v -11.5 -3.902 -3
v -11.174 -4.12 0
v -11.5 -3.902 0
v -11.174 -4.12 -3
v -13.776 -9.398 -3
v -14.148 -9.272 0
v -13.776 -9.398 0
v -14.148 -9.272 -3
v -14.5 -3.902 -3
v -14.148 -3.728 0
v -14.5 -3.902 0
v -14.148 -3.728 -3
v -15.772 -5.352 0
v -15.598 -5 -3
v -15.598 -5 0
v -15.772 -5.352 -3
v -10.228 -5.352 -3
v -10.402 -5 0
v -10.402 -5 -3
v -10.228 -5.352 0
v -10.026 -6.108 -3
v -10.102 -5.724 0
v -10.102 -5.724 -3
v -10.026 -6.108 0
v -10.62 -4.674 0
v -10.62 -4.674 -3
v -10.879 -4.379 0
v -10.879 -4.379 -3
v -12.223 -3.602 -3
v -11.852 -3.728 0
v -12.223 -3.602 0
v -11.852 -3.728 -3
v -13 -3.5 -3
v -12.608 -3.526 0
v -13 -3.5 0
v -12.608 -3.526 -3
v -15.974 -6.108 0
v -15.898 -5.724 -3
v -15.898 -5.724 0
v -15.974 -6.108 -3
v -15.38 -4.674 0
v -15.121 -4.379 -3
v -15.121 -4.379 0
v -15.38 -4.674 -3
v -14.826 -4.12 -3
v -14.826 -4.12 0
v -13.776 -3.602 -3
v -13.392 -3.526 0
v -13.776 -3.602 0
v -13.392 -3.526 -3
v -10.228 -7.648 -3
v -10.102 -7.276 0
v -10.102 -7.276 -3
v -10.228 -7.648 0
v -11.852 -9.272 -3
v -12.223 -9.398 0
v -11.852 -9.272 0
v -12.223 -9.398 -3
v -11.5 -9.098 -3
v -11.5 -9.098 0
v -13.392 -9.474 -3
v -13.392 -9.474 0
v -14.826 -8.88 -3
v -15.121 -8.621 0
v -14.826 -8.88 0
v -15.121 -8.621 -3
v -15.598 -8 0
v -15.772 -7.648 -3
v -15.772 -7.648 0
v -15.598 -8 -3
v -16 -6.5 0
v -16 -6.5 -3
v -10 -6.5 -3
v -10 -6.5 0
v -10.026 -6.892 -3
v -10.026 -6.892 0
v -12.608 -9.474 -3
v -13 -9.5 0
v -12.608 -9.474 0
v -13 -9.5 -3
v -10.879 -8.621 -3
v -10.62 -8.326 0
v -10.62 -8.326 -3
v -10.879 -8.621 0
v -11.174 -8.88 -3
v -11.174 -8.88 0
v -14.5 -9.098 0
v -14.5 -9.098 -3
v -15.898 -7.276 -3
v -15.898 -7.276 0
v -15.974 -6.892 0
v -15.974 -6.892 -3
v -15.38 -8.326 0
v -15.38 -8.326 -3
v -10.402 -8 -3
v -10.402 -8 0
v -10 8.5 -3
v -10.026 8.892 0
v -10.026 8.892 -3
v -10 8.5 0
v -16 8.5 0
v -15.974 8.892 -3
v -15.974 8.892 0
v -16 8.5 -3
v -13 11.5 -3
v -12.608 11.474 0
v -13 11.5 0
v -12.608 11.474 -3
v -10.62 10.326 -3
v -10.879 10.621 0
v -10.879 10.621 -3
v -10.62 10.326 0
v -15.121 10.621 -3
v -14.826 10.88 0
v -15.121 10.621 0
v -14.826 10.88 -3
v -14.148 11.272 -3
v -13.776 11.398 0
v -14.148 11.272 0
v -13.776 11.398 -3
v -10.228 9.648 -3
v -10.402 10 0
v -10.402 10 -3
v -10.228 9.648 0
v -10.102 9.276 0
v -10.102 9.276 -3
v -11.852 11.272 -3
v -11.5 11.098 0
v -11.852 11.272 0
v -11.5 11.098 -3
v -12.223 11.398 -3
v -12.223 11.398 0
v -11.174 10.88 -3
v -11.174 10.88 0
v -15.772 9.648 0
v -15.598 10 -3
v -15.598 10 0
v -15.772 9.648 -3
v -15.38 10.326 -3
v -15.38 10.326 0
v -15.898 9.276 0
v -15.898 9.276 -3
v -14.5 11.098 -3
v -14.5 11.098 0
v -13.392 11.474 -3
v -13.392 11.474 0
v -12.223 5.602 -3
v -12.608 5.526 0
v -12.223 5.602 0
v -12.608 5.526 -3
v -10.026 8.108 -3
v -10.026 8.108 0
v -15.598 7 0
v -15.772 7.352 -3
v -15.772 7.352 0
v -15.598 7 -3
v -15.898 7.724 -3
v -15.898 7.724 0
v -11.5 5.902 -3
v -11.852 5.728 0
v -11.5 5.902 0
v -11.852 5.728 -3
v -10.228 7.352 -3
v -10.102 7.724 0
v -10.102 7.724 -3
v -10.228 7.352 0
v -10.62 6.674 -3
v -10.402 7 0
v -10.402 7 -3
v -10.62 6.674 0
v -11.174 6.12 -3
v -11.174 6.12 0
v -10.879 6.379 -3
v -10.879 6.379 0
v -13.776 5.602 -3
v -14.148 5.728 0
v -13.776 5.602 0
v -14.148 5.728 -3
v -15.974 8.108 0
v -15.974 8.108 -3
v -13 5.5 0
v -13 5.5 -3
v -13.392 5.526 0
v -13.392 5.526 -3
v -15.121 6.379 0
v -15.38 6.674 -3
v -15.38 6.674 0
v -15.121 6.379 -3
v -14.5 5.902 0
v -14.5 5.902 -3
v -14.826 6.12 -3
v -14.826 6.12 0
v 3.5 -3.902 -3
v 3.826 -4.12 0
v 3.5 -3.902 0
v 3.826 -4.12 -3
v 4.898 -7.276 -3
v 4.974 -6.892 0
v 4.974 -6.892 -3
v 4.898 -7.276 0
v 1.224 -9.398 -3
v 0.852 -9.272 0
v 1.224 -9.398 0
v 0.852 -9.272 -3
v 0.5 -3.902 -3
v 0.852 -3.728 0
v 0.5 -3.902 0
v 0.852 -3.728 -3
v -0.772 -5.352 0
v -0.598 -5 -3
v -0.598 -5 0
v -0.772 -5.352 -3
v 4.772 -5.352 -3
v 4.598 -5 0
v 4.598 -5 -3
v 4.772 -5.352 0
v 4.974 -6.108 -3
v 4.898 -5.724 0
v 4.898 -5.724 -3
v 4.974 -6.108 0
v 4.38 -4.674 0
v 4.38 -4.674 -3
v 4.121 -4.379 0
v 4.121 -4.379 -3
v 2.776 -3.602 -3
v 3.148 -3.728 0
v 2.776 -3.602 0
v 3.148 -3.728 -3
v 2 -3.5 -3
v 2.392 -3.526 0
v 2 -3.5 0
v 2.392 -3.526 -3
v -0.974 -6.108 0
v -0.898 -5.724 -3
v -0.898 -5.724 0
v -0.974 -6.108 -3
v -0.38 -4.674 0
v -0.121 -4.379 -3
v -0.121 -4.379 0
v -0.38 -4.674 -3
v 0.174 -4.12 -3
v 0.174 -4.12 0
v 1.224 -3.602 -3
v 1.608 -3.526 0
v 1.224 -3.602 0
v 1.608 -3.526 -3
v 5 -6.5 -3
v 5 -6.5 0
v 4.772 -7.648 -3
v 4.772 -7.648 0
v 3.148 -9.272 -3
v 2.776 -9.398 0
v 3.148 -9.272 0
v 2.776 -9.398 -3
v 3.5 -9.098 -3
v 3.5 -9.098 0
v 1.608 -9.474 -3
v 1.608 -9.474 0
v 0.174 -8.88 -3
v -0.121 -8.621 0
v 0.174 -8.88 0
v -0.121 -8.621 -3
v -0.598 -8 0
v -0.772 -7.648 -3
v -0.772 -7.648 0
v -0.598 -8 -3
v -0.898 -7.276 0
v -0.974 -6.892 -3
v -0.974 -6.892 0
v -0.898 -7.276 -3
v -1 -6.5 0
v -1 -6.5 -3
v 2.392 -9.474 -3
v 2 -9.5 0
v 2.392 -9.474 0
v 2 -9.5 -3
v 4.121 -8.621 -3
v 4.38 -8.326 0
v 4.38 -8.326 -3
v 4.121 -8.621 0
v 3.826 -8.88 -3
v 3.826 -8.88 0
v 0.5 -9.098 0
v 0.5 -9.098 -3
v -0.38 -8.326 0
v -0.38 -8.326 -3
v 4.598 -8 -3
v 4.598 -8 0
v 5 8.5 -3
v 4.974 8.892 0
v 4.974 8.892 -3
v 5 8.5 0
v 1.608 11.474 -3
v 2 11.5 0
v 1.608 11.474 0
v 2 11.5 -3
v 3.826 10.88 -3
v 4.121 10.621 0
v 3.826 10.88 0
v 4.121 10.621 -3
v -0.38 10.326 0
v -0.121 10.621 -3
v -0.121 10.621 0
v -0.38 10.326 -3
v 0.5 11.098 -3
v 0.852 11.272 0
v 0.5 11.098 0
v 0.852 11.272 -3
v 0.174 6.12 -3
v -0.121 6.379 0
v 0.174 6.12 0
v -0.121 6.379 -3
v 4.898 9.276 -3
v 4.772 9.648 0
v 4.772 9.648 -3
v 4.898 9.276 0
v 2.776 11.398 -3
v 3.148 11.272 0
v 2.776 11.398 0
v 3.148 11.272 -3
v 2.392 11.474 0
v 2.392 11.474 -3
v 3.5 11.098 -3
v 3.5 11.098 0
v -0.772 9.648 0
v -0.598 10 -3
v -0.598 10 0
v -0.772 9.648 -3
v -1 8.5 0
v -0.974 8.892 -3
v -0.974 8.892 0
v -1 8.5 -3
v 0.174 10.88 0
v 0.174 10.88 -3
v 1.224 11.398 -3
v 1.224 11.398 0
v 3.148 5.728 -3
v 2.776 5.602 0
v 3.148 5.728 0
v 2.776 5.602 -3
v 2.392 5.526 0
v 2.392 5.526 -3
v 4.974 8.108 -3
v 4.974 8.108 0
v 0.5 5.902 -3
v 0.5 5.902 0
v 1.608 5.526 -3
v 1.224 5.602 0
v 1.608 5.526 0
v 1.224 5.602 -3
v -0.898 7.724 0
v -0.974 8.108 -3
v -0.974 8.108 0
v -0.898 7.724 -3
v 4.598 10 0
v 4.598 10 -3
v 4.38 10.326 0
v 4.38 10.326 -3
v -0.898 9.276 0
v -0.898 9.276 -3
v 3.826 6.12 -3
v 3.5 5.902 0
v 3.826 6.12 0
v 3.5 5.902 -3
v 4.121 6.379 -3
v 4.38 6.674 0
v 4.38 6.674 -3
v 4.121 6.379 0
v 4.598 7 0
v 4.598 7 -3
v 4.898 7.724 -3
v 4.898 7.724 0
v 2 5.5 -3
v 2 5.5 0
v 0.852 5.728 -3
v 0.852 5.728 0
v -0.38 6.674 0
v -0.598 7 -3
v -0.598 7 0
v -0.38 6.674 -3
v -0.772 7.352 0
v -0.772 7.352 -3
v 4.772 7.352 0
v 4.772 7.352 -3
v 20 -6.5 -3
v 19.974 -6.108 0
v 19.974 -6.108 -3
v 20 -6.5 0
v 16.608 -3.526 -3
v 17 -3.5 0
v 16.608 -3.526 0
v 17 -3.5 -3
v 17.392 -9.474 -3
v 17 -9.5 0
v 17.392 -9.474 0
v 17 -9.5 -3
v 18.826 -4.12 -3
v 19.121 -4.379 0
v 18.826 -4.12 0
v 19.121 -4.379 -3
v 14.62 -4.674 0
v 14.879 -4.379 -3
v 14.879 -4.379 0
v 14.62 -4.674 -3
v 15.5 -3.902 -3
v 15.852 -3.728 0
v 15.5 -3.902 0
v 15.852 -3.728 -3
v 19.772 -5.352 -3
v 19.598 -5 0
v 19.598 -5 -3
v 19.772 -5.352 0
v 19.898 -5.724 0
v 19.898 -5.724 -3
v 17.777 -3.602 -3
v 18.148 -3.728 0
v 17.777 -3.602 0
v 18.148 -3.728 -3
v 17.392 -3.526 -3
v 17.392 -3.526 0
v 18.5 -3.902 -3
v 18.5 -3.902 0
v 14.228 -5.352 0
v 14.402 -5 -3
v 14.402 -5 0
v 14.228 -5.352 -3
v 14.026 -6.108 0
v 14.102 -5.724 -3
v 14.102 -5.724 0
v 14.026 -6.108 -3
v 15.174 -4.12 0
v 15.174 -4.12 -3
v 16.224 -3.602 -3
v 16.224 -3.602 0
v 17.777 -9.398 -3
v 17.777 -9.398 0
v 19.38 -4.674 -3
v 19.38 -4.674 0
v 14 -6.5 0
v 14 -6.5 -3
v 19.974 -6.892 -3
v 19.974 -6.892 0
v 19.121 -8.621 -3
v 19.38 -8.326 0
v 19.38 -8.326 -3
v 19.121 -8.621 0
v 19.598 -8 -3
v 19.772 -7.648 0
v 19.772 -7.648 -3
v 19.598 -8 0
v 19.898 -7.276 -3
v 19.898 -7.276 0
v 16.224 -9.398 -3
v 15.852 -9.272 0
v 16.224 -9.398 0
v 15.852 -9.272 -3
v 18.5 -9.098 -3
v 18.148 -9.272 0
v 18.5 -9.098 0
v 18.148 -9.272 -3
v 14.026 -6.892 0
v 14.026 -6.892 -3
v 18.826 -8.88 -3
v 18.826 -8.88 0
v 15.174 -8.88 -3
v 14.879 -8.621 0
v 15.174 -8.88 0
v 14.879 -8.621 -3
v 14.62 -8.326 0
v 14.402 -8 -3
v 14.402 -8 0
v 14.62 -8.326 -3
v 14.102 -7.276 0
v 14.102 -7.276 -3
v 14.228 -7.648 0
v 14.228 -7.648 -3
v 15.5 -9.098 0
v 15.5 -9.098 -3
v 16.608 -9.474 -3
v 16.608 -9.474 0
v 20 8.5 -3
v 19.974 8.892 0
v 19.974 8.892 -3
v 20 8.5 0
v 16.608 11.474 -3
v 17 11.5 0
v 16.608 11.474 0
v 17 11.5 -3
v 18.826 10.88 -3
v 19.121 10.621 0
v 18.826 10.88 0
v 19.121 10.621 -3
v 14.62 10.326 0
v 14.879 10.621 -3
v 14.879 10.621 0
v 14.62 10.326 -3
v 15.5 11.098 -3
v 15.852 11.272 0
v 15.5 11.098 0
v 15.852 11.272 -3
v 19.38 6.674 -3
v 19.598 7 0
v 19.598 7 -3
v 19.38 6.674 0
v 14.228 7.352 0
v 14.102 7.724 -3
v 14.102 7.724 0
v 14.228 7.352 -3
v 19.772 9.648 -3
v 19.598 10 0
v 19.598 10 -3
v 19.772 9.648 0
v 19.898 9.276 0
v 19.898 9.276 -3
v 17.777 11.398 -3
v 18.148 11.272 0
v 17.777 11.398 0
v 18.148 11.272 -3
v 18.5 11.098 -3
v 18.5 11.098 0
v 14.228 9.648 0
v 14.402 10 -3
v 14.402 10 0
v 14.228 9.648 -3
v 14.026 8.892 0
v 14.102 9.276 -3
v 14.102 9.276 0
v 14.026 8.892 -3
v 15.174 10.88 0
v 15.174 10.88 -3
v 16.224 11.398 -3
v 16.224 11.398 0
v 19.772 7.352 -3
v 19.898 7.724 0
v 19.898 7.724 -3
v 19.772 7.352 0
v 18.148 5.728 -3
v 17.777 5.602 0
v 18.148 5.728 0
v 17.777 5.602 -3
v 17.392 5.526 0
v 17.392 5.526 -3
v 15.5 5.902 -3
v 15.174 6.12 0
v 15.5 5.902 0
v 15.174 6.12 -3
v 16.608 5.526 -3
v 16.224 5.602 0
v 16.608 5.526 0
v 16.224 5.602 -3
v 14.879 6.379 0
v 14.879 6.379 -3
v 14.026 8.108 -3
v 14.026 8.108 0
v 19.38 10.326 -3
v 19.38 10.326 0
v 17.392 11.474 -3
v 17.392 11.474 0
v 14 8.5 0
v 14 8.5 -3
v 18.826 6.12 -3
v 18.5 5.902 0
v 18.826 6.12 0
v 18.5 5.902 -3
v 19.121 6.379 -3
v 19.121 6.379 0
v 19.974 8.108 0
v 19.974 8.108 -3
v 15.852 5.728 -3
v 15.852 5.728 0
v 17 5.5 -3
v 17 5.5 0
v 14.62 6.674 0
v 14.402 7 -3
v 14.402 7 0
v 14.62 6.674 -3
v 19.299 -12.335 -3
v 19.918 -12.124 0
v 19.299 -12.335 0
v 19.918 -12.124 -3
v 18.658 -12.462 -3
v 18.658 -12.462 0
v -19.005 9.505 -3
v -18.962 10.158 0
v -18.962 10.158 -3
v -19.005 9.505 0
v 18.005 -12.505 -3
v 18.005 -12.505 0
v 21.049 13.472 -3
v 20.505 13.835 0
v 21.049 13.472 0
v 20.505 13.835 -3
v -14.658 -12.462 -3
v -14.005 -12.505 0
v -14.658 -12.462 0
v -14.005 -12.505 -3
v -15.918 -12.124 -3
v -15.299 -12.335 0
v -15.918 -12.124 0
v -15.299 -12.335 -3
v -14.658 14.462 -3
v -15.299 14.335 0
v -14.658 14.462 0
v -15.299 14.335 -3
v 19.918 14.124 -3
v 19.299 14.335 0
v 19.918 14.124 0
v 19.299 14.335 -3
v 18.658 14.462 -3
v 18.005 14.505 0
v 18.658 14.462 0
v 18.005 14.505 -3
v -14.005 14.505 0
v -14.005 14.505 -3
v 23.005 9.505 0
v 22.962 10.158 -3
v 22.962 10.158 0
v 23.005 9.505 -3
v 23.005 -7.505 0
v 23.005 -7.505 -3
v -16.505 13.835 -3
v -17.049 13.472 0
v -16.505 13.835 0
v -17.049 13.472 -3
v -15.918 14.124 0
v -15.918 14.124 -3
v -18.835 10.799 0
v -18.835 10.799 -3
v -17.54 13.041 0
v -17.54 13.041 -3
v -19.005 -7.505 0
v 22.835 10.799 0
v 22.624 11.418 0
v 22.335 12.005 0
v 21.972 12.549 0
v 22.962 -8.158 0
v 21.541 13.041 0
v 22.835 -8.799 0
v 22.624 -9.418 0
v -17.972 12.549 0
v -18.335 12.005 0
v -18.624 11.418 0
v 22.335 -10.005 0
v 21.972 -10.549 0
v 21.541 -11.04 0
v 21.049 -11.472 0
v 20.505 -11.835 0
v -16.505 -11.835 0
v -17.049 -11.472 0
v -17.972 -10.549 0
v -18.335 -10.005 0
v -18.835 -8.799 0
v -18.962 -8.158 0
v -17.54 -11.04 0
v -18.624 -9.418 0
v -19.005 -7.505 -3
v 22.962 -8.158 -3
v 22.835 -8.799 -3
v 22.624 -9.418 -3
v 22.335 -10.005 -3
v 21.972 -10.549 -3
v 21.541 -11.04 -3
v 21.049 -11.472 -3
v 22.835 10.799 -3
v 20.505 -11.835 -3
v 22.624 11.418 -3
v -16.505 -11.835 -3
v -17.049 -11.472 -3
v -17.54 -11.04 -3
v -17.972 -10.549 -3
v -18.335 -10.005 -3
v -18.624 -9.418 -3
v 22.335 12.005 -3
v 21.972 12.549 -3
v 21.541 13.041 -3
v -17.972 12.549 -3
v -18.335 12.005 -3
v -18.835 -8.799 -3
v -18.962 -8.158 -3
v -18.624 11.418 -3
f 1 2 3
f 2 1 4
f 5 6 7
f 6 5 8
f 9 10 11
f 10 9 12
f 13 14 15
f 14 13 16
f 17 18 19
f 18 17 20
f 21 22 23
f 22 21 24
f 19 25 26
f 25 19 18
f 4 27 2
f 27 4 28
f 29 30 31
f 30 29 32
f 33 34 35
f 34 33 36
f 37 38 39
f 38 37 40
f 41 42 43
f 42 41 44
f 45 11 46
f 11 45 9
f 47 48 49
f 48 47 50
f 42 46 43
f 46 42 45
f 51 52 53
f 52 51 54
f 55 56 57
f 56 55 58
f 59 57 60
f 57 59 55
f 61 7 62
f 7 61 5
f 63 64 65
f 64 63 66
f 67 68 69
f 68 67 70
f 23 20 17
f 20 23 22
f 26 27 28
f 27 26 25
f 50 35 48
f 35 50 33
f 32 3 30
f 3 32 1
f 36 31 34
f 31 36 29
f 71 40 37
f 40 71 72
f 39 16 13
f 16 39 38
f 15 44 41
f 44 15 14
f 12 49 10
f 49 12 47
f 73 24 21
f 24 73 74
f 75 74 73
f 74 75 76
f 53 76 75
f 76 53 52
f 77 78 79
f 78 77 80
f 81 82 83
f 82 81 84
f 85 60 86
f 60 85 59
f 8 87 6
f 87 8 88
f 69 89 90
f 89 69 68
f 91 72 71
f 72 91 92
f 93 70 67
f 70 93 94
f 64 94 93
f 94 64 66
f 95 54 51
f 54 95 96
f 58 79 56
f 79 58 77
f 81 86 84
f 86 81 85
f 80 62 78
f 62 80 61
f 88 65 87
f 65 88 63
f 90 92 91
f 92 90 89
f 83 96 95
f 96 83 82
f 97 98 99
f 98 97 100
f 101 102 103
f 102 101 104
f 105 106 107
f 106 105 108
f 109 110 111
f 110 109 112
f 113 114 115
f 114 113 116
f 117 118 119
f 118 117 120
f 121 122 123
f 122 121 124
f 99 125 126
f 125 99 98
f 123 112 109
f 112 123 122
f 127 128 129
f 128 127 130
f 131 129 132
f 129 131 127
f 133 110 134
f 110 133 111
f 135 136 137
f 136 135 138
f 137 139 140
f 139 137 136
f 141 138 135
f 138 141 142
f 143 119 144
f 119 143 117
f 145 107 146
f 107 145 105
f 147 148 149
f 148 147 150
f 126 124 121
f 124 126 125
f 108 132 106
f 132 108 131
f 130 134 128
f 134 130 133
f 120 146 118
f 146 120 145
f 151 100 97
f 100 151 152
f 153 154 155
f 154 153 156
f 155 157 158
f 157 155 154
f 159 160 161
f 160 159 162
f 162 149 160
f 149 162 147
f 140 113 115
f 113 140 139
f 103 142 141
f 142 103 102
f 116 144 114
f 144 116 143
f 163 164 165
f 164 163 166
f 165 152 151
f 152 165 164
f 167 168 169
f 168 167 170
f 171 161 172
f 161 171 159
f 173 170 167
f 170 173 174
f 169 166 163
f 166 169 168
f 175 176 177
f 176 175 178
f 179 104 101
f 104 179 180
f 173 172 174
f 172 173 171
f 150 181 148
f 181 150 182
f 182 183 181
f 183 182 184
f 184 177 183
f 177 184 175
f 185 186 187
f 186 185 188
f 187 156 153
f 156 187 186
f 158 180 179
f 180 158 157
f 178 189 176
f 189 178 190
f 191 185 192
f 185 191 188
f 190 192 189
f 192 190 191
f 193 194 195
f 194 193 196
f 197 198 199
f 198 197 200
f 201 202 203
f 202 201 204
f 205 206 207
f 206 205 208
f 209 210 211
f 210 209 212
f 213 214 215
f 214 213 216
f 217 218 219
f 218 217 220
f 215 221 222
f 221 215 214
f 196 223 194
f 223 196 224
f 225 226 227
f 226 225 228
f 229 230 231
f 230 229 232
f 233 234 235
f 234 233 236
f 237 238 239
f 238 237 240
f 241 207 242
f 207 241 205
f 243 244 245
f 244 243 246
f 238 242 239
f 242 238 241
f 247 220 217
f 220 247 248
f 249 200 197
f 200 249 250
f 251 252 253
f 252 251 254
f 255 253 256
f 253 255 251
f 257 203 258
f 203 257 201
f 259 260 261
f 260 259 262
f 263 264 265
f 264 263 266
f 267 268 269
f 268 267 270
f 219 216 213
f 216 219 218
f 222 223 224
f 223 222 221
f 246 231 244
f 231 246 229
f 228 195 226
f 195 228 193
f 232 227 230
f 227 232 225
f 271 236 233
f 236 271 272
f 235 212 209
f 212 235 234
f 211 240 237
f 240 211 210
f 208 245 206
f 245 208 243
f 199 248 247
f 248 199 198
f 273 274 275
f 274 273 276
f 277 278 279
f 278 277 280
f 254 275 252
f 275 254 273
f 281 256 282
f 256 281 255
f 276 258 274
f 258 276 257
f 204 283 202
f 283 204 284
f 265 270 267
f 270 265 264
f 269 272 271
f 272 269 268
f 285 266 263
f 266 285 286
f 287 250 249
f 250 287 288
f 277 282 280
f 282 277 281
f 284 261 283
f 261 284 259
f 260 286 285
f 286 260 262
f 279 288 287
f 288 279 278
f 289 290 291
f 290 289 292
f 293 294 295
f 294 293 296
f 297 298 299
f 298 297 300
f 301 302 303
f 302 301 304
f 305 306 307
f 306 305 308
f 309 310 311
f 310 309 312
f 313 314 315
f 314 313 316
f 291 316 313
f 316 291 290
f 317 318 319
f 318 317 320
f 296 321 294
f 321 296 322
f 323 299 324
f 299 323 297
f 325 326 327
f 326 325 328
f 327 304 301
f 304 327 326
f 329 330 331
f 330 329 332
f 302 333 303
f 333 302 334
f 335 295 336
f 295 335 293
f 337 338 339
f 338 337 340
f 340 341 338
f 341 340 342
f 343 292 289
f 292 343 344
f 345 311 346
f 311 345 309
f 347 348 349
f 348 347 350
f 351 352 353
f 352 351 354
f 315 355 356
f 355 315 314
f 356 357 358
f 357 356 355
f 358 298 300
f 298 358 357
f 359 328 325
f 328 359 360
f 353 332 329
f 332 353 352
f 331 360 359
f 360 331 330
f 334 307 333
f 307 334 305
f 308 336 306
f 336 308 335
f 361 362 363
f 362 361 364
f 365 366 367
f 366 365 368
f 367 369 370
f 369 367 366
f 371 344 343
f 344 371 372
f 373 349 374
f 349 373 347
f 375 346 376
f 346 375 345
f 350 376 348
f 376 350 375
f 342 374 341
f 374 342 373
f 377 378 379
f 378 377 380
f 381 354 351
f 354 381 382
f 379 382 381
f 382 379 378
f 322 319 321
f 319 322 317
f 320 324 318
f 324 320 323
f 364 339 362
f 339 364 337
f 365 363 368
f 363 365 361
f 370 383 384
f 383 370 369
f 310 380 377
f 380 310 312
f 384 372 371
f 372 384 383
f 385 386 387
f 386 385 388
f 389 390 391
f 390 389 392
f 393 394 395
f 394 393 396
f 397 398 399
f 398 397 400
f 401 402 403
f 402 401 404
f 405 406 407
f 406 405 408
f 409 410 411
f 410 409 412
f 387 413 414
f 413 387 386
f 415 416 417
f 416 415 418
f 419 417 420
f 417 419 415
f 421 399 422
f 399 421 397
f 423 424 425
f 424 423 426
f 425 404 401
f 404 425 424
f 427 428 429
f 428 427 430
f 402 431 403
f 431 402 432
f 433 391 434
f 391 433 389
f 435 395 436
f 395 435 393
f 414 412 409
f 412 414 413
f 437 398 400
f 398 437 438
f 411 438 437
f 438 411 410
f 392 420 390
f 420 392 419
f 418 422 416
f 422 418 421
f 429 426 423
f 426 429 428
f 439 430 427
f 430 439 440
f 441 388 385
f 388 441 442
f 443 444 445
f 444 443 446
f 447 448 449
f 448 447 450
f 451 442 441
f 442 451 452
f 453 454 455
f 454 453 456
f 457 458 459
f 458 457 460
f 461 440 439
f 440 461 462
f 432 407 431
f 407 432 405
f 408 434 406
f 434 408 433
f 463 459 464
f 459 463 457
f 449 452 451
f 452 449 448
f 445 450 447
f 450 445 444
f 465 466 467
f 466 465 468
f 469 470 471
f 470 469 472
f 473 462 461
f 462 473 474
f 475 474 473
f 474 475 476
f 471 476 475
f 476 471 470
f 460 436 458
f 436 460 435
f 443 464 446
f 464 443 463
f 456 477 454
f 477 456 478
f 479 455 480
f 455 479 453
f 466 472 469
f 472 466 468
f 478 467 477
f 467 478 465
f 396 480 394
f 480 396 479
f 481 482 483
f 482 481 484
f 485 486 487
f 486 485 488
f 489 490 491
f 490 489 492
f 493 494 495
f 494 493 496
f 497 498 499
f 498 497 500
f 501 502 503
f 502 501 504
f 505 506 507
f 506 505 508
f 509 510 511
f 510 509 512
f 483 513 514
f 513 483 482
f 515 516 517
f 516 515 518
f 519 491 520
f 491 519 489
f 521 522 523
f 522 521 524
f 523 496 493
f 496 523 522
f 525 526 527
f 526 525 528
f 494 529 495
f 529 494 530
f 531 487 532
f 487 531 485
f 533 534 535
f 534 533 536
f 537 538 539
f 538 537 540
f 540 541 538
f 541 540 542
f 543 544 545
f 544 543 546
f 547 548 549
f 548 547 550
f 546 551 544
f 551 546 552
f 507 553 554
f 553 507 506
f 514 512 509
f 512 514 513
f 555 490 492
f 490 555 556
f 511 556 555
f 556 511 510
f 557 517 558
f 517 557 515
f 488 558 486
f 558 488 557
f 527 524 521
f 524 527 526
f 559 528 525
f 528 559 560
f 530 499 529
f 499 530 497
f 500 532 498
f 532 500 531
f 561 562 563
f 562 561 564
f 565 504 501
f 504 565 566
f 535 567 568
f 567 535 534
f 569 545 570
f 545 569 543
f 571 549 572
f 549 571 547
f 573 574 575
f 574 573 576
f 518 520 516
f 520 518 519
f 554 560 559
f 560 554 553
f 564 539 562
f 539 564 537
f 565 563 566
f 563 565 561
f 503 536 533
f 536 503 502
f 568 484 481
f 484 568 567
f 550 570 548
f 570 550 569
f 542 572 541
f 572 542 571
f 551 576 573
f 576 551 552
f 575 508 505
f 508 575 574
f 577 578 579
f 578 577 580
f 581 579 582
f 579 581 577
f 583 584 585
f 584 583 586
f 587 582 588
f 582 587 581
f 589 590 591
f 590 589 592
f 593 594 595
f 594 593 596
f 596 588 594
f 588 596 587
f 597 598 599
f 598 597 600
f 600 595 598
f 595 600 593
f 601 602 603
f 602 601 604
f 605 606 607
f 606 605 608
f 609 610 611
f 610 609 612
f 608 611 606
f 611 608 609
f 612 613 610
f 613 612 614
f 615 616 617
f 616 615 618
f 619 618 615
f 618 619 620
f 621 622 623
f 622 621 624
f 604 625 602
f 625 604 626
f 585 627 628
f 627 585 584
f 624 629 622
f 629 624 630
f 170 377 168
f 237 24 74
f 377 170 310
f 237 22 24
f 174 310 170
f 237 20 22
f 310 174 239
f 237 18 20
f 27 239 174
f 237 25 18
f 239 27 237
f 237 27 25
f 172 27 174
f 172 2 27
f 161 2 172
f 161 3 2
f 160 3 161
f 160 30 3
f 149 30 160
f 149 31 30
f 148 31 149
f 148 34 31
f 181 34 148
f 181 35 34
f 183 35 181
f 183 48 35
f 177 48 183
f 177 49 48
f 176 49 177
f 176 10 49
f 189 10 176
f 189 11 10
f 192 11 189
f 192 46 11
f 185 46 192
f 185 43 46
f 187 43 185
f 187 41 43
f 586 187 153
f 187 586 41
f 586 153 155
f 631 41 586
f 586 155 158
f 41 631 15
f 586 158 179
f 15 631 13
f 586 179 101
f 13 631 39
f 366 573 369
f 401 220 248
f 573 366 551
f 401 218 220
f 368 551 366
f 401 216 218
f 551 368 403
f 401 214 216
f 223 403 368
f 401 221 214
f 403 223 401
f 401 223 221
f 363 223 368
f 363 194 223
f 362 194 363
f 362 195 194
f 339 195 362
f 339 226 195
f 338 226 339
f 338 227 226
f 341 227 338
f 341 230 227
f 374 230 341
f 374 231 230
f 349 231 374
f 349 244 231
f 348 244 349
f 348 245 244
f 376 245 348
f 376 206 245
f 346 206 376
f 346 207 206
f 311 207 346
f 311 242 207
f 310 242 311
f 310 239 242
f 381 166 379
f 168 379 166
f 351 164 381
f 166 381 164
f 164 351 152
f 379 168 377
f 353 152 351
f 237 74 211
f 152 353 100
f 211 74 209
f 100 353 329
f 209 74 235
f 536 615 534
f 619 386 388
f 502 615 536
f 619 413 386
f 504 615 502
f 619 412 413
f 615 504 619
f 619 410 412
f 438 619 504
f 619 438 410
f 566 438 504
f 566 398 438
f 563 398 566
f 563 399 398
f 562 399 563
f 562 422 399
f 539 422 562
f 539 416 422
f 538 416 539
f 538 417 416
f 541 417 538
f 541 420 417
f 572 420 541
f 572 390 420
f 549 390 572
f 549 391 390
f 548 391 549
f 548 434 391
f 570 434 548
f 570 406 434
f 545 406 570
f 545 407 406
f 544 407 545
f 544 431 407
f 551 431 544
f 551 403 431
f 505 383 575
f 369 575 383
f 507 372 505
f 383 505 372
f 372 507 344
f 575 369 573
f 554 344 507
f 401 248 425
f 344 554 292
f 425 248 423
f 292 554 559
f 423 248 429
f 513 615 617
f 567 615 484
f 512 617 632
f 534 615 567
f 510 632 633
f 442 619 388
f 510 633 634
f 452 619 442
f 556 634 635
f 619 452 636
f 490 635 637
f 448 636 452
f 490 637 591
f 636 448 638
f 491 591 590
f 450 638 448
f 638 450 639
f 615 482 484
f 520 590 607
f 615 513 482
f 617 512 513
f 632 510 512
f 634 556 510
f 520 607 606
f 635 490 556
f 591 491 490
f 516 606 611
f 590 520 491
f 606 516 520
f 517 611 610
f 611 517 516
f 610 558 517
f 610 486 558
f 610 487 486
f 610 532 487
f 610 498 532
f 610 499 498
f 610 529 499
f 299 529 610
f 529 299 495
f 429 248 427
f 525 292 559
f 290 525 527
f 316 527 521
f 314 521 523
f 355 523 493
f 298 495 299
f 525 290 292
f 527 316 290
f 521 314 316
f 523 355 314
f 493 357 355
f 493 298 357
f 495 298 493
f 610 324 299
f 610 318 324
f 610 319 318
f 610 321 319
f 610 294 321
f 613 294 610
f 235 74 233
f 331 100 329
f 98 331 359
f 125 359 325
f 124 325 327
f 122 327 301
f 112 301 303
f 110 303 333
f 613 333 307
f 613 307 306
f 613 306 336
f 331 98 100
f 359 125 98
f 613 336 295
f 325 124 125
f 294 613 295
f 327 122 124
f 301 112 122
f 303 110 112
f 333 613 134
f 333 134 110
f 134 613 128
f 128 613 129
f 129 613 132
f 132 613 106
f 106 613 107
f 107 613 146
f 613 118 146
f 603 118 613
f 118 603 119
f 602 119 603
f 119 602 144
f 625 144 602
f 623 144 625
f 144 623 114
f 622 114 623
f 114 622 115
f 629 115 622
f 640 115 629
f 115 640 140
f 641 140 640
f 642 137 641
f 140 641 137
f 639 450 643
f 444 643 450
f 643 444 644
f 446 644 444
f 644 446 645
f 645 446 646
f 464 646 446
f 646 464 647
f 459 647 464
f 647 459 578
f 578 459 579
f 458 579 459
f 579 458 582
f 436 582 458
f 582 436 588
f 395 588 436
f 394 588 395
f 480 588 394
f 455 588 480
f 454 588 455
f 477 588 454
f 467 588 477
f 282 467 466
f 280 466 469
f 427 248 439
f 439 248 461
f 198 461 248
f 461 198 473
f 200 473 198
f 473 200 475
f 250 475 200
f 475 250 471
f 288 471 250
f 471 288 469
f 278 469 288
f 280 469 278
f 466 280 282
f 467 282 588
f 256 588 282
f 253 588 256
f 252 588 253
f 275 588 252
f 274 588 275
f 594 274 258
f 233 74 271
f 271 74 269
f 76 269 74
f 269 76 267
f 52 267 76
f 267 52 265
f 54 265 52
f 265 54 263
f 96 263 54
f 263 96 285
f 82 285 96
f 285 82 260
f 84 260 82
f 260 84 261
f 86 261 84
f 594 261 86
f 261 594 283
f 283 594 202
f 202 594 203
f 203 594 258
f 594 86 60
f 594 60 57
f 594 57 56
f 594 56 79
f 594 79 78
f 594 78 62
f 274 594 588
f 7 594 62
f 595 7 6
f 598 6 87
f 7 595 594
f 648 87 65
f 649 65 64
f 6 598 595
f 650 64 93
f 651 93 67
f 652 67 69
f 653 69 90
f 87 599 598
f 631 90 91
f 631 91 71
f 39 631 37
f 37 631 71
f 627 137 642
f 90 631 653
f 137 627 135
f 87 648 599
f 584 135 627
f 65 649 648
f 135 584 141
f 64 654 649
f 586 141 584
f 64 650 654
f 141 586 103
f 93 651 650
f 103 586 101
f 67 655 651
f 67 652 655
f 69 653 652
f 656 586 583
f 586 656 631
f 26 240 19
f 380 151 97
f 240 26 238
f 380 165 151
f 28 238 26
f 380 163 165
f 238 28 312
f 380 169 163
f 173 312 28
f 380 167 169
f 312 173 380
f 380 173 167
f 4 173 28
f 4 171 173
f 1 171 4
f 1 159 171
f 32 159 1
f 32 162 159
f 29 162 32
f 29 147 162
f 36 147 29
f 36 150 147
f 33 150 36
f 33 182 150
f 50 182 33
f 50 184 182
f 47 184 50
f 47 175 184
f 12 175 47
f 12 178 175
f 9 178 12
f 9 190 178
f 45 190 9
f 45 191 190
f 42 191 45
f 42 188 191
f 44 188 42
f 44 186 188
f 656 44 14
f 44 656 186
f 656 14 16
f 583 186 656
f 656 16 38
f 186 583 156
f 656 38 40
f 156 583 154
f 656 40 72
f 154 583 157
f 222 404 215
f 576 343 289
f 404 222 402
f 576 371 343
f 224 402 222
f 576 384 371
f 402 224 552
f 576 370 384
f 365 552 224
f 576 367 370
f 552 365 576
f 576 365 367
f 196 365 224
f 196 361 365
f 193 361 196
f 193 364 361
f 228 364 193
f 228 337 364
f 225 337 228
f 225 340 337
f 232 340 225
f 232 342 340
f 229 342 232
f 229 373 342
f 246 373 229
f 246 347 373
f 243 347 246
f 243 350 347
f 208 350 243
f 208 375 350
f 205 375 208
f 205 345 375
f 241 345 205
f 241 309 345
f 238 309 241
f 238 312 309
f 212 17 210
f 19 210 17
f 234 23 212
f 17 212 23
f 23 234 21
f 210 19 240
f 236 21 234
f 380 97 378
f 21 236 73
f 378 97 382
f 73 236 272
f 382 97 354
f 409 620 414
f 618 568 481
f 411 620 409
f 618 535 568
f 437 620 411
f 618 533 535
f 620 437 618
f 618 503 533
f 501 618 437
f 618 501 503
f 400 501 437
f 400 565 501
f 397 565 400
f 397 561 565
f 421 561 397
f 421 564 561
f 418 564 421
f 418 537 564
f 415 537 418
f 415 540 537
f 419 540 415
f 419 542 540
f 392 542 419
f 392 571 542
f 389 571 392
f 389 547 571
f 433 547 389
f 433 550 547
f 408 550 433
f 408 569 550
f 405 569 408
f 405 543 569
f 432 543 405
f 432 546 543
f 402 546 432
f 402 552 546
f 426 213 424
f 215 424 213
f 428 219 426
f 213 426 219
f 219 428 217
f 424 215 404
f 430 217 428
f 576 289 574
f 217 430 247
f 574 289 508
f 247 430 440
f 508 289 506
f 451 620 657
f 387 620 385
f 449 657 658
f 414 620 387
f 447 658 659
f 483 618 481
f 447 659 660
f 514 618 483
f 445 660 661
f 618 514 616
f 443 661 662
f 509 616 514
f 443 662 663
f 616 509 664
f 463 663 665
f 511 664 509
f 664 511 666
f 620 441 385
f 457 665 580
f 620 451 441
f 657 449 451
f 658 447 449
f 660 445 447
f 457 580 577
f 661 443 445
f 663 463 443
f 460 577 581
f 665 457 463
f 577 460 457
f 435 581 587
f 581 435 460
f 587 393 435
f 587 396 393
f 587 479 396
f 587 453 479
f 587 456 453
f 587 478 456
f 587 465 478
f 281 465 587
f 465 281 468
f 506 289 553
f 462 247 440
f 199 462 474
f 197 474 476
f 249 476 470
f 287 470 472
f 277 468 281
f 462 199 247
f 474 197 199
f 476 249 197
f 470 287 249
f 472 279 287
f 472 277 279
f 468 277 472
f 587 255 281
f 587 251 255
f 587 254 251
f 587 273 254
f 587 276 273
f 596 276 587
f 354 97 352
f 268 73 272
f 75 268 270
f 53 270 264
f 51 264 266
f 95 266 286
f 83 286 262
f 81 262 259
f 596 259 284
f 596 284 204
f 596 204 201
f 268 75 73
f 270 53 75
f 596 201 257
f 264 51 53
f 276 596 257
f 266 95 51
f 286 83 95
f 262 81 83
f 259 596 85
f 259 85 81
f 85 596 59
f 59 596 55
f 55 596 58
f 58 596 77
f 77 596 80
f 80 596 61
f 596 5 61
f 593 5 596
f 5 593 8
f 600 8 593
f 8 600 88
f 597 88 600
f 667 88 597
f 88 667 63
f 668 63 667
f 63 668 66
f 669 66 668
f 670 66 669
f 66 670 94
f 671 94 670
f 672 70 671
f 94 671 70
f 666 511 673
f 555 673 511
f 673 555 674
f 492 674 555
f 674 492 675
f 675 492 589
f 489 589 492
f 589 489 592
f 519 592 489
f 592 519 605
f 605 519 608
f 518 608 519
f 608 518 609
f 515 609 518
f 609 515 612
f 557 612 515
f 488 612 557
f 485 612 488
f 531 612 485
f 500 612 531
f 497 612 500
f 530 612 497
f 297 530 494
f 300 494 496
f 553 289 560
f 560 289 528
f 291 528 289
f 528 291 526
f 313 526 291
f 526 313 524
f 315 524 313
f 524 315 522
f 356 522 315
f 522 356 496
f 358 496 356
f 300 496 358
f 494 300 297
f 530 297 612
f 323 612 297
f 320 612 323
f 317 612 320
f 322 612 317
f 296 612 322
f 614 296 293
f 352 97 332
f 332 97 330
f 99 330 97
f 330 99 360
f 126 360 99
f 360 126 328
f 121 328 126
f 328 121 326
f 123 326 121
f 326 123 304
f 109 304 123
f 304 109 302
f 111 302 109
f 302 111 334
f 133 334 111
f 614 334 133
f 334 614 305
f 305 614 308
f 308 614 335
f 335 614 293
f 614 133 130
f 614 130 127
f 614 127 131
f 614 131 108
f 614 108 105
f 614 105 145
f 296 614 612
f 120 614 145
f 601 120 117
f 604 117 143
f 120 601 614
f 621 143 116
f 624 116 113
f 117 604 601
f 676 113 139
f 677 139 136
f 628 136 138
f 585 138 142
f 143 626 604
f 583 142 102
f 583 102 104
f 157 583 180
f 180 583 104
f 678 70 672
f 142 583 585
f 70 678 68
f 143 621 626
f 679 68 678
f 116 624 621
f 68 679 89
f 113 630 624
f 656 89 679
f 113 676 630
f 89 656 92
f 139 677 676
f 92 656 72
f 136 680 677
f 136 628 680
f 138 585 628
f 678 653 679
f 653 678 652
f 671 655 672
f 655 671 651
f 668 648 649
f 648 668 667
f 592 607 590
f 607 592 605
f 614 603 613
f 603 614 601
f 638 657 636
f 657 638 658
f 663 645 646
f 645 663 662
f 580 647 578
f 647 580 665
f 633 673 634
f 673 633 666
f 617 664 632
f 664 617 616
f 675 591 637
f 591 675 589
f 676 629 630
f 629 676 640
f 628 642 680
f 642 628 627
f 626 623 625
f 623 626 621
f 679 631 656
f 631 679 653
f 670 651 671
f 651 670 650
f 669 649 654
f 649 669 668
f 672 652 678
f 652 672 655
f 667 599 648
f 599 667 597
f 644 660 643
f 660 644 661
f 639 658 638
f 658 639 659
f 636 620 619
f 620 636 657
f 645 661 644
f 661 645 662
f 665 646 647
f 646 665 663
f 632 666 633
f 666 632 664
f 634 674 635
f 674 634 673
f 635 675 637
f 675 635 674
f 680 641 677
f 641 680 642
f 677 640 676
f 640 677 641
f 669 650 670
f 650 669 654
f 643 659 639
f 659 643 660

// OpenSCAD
// Generated by SolidPython 1.1.3 on 2022-09-15 16:37:09
$fn = 48;


difference() {
	union() {
		translate(v = [2, 1, 0]) {
			difference() {
				union() {
					color(alpha = 1.0000000000, c = "Gold") {
						translate(v = [0, 0, 0]) {
							rotate(a = [0, 0, 0]) {
								translate(v = [0, 0, -3]) {
									linear_extrude(height = 3) {
										offset(r = 5) {
											square(center = true, size = [32.0100000000, 17.0100000000]);
										}
									}
								}
							}
						}
					}
				}
				union() {
					color(alpha = 1.0000000000, c = "Gold") {
						translate(v = [-15.0000000000, -7.5000000000, 0]) {
							rotate(a = [0, 0, 0]) {
								translate(v = [0, 0, -250]) {
									cylinder(h = 500, r = 3.0000000000);
								}
							}
						}
					}
					color(alpha = 1.0000000000, c = "Gold") {
						translate(v = [-15.0000000000, 7.5000000000, 0]) {
							rotate(a = [0, 0, 0]) {
								translate(v = [0, 0, -250]) {
									cylinder(h = 500, r = 3.0000000000);
								}
							}
						}
					}
					color(alpha = 1.0000000000, c = "Gold") {
						translate(v = [0.0000000000, -7.5000000000, 0]) {
							rotate(a = [0, 0, 0]) {
								translate(v = [0, 0, -250]) {
									cylinder(h = 500, r = 3.0000000000);
								}
							}
						}
					}
					color(alpha = 1.0000000000, c = "Gold") {
						translate(v = [0.0000000000, 7.5000000000, 0]) {
							rotate(a = [0, 0, 0]) {
								translate(v = [0, 0, -250]) {
									cylinder(h = 500, r = 3.0000000000);
								}
							}
						}
					}
					color(alpha = 1.0000000000, c = "Gold") {
						translate(v = [15.0000000000, -7.5000000000, 0]) {
							rotate(a = [0, 0, 0]) {
								translate(v = [0, 0, -250]) {
									cylinder(h = 500, r = 3.0000000000);
								}
							}
						}
					}
					color(alpha = 1.0000000000, c = "Gold") {
						translate(v = [15.0000000000, 7.5000000000, 0]) {
							rotate(a = [0, 0, 0]) {
								translate(v = [0, 0, -250]) {
									cylinder(h = 500, r = 3.0000000000);
								}
							}
						}
					}
				}
			}
		}
	}
	union();
}
/***********************************************
*********      SolidPython code:      **********
************************************************
 
import subprocess

from solid.objects import *
from solid import scad_render_to_file, scad_render

import math

import os

##################################################################################################################################################
##################################################################################################################################################
##################################################################################################################################################
##################################################################################################################################################
######  DIMENSION STUFF
##################################################################################################################################################
##################################################################################################################################################
##################################################################################################################################################
##################################################################################################################################################


mode = "3DPR"
#mode = "LAZE"
#mode = "TURE"
#mode = ""


######  Countersunk
countersunkM = []
WIDTH = 0
DEPTH = 1
countersunkM1width = 0; countersunkM1depth = 0; countersunkM2width = 0; countersunkM2depth = 0
countersunkM3width = 0
countersunkM3depth = 0
countersunkM4width = 0
countersunkM4depth = 0
countersunkM5width = 0
countersunkM5depth = 0
countersunkM6width = 0
countersunkM6depth = 0

######  Holes
holeM = []
holeM1 = 0
holeM2 = 0
holeM3 = 0
holeM4 = 0
holeM5 = 0
holeM6 = 0

######  Nuts
nutM = []
NUTWIDTH = 0
NUTDEPTH = 1
nutM1width = 0
nutM1depth = 0
nutM2width = 0
nutM2depth = 0
nutM3width = 0
nutM3depth = 0
nutM4width = 0
nutM4depth = 0
nutM5width = 0
nutM5depth = 0
nutM6width = 0
nutM6depth = 0

######  OOEB
ooebPinWidth = 0
ooebPinWidthWide = 0


######  Colors
colDefault = "Gold"

colOOEBbase = colDefault

colLEDRed = "red"
colWire = "gray"
    ######  Resistor
colRes = list()
colResistor = "beige"

colResBlack = "black"
colRes.append(colResBlack)
colResBrown = "brown"
colRes.append(colResBrown)
colResRed = "red"
colRes.append(colResRed)
colResOrange = "orange"
colRes.append(colResOrange)
colResYellow = "yellow"
colRes.append(colResYellow)
colResGreen = "green"
colRes.append(colResGreen)
colResBlue = "blue"
colRes.append(colResBlue)
colResPurple = "purple"
colRes.append(colResPurple)
colResGray = "gray"
colRes.append(colResGray)
colResWhite = "white"
colRes.append(colResWhite)





def changeMode(m="3DPR"):
    #print("####################################################      CHANGING MODES TO: " + m)
    global mode
    mode = m
    ######  Countersunk
    global countersunkM, countersunkM1width, countersunkM1depth, countersunkM2width, countersunkM2depth, countersunkM3width, countersunkM3depth, countersunkM4width, countersunkM4depth, countersunkM5width, countersunkM5depth, countersunkM6width, countersunkM6depth
    countersunkM = []
    countersunkM.append([0,0])
    countersunkM1width = 0 if mode== "3DPR" else 0
    countersunkM1depth = 0 if mode== "3DPR" else 0
    countersunkM.append([countersunkM1width,countersunkM1depth])
    countersunkM2width = 0 if mode== "3DPR" else 0
    countersunkM2depth = 0 if mode== "3DPR" else 0
    countersunkM.append([countersunkM2width,countersunkM2depth])
    countersunkM3width = 5.5/2+0.6 if mode== "3DPR" else 5.5/2
    countersunkM3depth = 1.7 if mode== "3DPR" else 1.7
    countersunkM.append([countersunkM3width,countersunkM3depth])
    countersunkM4width = 0 if mode== "3DPR" else 0
    countersunkM4depth = 0 if mode== "3DPR" else 0
    countersunkM.append([countersunkM4width,countersunkM4depth])
    countersunkM5width = 0 if mode== "3DPR" else 0
    countersunkM5depth = 0 if mode== "3DPR" else 0
    countersunkM.append([countersunkM5width,countersunkM5depth])
    countersunkM6width = 0 if mode== "3DPR" else 0
    countersunkM6depth = 0 if mode== "3DPR" else 0
    countersunkM.append([countersunkM6width,countersunkM6depth])
    ######  Holes
    global holeM, holeM1, holeM2, holeM3, holeM4, holeM5, holeM6, holeM7, holeM8
    holeM = []
    holeM1 = 1.2/2 if mode== "3DPR" else 1/2
    holeM2 = 2.3/2 if mode== "3DPR" else 2/2
    holeM3 = 3.4/2 if mode== "3DPR" else 3/2
    holeM4 = 4.4/2 if mode== "3DPR" else 4/2
    holeM5 = 5.4/2 if mode== "3DPR" else 5/2
    holeM6 = 6.5/2 if mode== "3DPR" else 6/2
    holeM7 = 7.5/2 if mode== "3DPR" else 7/2
    holeM8 = 8.6/2 if mode== "3DPR" else 8/2
    holeM.append(0)
    holeM.append(holeM1)
    holeM.append(holeM2)
    holeM.append(holeM3)
    holeM.append(holeM4)
    holeM.append(holeM5)
    holeM.append(holeM6)
    holeM.append(holeM7)
    holeM.append(holeM8)
    #####  Nuts
    global nutM, nutM1width, nutM1depth, nutM2width, nutM2depth, nutM3width, nutM3depth, nutM4width, nutM4depth, nutM5width, nutM5depth, nutM6width, nutM6depth
    nutM = []
    nutM.append([0,0]) 
    #M1 Nut
    nutM1width = 0
    nutM1depth = 0
    nutM.append([nutM1width,nutM1depth])    
    #M2 Nut
    nutM2width = 0
    nutM2depth = 0
    nutM.append([nutM2width,nutM2depth])    
    #M3 Nut
    #nutM3width = 6.05 if mode== "3DPR" else 5.5
    nutM3width = 6.05 * 1.154 if mode== "3DPR" else 5.5 * 1.154
    nutM3depth = 2.5 if mode== "3DPR" else 2.5
    nutM.append([nutM3width,nutM3depth])    
    #M4 Nut
    nutM4width = 0
    nutM4depth = 0
    nutM.append([nutM4width,nutM4depth])    
    #M5 Nut
    nutM5width = 0
    nutM5depth = 0
    nutM.append([nutM5width,nutM5depth])    
    #M6 Nut
    nutM6width = 11 if mode== "3DPR" else 10
    nutM6depth = 5 if mode== "3DPR" else 5
    nutM.append([nutM6width,nutM6depth])    

    ######  OOEB
    global ooebPinWidth,  ooebPinWidthWide

    ooebPinWidth = 0.6
    if(mode=="3DPR" or mode=="LAZE"):
        ooebPinWidth = 0.6 + 0.6
    ooebPinWidthWide = 1.2
    if(mode=="3DPR" or mode=="LAZE"):
        ooebPinWidthWide = 1.2 + 0.6


changeMode()


""""    
holeM12D = s=="3DPR" ? 1.4/2 : 1.2/2;
holeM16D = s=="3DPR" ? 1.8/2 : 1.6/2;
holeM2 = s=="3DPR" ? 2.3/2 : 2/2;
holeM25D = s=="3DPR" ? 2.8/2 : 2.5/2;
holeM27D = s=="3DPR" ? 3.1/2 : 2.7/2;    
holeM3 = s=="3DPR" ? 3.4/2 : 3/2;
holeM35D = s=="3DPR" ? 3.9/2 : 35/2;
holeM4 = s=="3DPR" ? 4.4/2 : 4/2;
holeM5 = s=="3DPR" ? 5.4/2 : 5/2;
holeM6 = s=="3DPR" ? 6.5/2 : 6/2;
holeM6Minus = s=="3DPR" ? 5.8/2 : 5.9/2;
holeM7 = s=="3DPR" ? 7.5/2 : 7/2;
holeM8 = s=="3DPR" ? 8.6/2 : 8/2;
holeM9 = s=="3DPR" ? 9.6/2 : 9/2;
holeM10 = s=="3DPR" ? 10.6/2 : 10/2;
holeM11 = s=="3DPR" ? 11.6/2 : 11/2;
holeM12 = s=="3DPR" ? 12.6/2 : 12/2;
holeM13 = s=="3DPR" ? 13.6/2 : 13/2;
holeM14 = s=="3DPR" ? 14.6/2 : 14/2;
holeM15 = s=="3DPR" ? 15.6/2 : 15/2;
holeM16 = s=="3DPR" ? 16.6/2 : 16/2;
holeM17 = s=="3DPR" ? 17.6/2 : 17/2;
holeM18 = s=="3DPR" ? 18.6/2 : 18/2;
holeM19 = s=="3DPR" ? 19.6/2 : 19/2;
holeM20 = s=="3DPR" ? 20.6/2 : 20/2;
"""

##################################################################################################################################################
##################################################################################################################################################
##################################################################################################################################################
##################################################################################################################################################
######  REGULAR STUFF
##################################################################################################################################################
##################################################################################################################################################
##################################################################################################################################################
##################################################################################################################################################


def setMode(mode="3DPR"):
    changeMode(mode)

def getMode():
    return mode



def saveToScad(fileName, parts):
    dir =  os.path.dirname(os.path.abspath(fileName))
    Path(dir).mkdir(parents=True, exist_ok=True)
    file_out = scad_render_to_file(parts, fileName, file_header=f'$fn = 48;')


def saveToDxf(fileIn, fileOut=""):
    if fileOut == "":
        fileOut = fileIn.replace(".scad",".dxf")
    saveToFile(fileIn, fileOut)
    
def saveToPng(fileIn, fileOut="",extra="--render"):
    if fileOut == "":
        fileOut = fileIn.replace(".scad",".png")
    saveToFile(fileIn, fileOut)

def saveToStl(fileIn, fileOut=""):
    if fileOut == "":
        fileOut = fileIn.replace(".scad",".stl")
    saveToFile(fileIn, fileOut)
    
def saveToSvg(fileIn, fileOut=""):
    if fileOut == "":
        fileOut = fileIn.replace(".scad",".svg")
    saveToFile(fileIn, fileOut)

def saveToFile(fileIn, fileOut,extra=""):
    extra = extra + " --colorscheme Tomorrow"

    launchStr = 'openscad -o "' + fileOut + '"' + extra + ' "' + fileIn + '"'
    if ".png" in fileOut:
        launchStr = launchStr + " --render"
    print("            saveToFile launch string: " + launchStr)
    subprocess.run(launchStr)
    x=0



def insert(item,pos=[None,None,None],x=0,y=0,z=0,ex=0,size=[None,None,None],length=0,rot=[None,None,None],rotX=0,rotY=0,rotZ=0,width=0,height=0,depth=100,rad=0,rad2=0,color=colDefault,alpha=1,OOwidth=0,OOheight=0,holes=True,negative=True, name="",m=""):
    return OPSCInsert(item,pos,x,y,z,ex,size,length,rot,rotX,rotY,rotZ,width,height,depth,rad,rad2,color,alpha,OOwidth,OOheight,holes,negative,name,m=m)


def OPSCInsert(item,pos=[None,None,None],x=0,y=0,z=0,ex=0,size=[None,None,None],length=0,rot=[None,None,None],rotX=0,rotY=0,rotZ=0,width=0,height=0,depth=100,rad=0,rad2=0,col=colDefault,alpha=1,OOwidth=0,OOheight=0,holes=True,negative=True, name="",m=""):
    
    """
        color(color,alpha){
            translate([x,y,z]){
                    rotate([rotX,rotY,rotZ]){
    """
    returnValue = ""

    #print(pos)

    if pos[0] != None:
        x=pos[0]
        y=pos[1]
        z=pos[2]
    if rot[0] != None:
        rotX=rot[0]
        rotY=rot[1]
        rotZ=rot[2]
    
    returnValue = color(col)(translate((x,y,z))(
                            rotate((rotX,rotY,rotZ))(
                                OPSCInsertIf(item,pos,x,y,z,ex,size,length,rot,rotX,rotY,rotZ,width,height,depth,rad,rad2,col,alpha,OOwidth,OOheight,holes,negative,name,m=m)
                            )
                        ))
                
    

    return returnValue

def OPSCInsertIf(item,pos=[None,None,None],x=0,y=0,z=0,ex=0,size=[None,None,None],length=0,rot=[None,None,None],rotX=0,rotY=0,rotZ=0,width=0,height=0,depth=100,rad=0,rad2=0,color=colDefault,alpha=1,OOwidth=0,OOheight=0,holes=True,negative=True, name="",m=""):
    returnValue = cube([10,10,10])

    if size[0] != None:
        width=size[0]
        height=size[1]
        depth=size[2]

    #print("    OPSCInsert item:" + str(item) + " at:[" + str(x) + "," + str(y) + "," + str(z) + "] size: [" + str(width) + "," + str(height) + "," + str(depth) + "]")

    if(item=="cube"):
        returnValue =  translate([0,0,-depth/2])(cube([width,height,depth],center=True).set_modifier(m))
    elif(item=="cylinder"):        
        returnValue = translate([0,0,-depth/2])(cylinder(r=rad,h=depth,center=True).set_modifier(m))
    elif(item=="sphere"):        
        returnValue = translate([0,0,-rad])(sphere(r=rad).set_modifier(m))
    elif(item=="plane"):
        if depth == 100:
            returnValue = insert("cube",size=[1000,1000,0.1],color=color).set_modifier(m)            
        else:
            returnValue = insert("cube",size=[1000,1000,depth],color=color).set_modifier(m)                        
    elif(item=="cubeRounded"):
        if(rad == 0):
                            rad = 5
        returnValue =  translate([0,0,-depth])(
                        linear_extrude(height=depth)(                        
                            offset(r=rad)(
                                square((width-rad*2+.01,height-rad*2+.01),center=True).set_modifier(m)
                                )
                            )
        )
    ######  Countersunk
    elif(item == "countersunkM1" or item == "csM1" ):
        returnValue = OSPCgetCountersunk(rad=1,m=m)
    elif(item == "countersunkM2" or item == "csM2" ):
        returnValue = OSPCgetCountersunk(rad=2,m=m)
    elif(item == "countersunkM3" or item == "csM3" ):
        returnValue = OSPCgetCountersunk(rad=3,m=m)
    elif(item == "countersunkM4" or item == "csM4" ):
        returnValue = OSPCgetCountersunk(rad=4,m=m)
    elif(item == "countersunkM5" or item == "csM5" ):
        returnValue = OSPCgetCountersunk(rad=5,m=m)
    elif(item == "countersunkM6" or item == "csM6" ):
        returnValue = OSPCgetCountersunk(rad=6,m=m)
    elif(item == "countersunk" or item == "cs"):
        returnValue = OSPCgetCountersunk(rad=rad,m=m)


    ######  Holes    
    elif(item == "holeM1"):
        returnValue = OSPCgetHole(rad=1,m=m)
    elif(item == "holeM2"):
        returnValue = OSPCgetHole(rad=2,m=m)
    elif(item == "holeM3"):
        returnValue = OSPCgetHole(rad=3,m=m)
    elif(item == "holeM4"):
        returnValue = OSPCgetHole(rad=4,m=m)
    elif(item == "holeM5"):
        returnValue = OSPCgetHole(rad=5,m=m)
    elif(item == "holeM6"):
        returnValue = OSPCgetHole(rad=6,m=m)
    elif(item == "holeM7"):
        returnValue = OSPCgetHole(rad=7,m=m)
    elif(item == "holeM8"):
        returnValue = OSPCgetHole(rad=8,m=m)
    elif(item == "hole"):
        returnValue = OSPCgetHole(rad=rad,m=m)

    ######  Nuts
    elif(item == "nutM1"):
        returnValue = OSPCgetNut(rad=1,depth=depth,m=m)
    elif(item == "nutM2"):
        returnValue = OSPCgetNut(rad=2,depth=depth,m=m)
    elif(item == "nutM3"):
        returnValue = OSPCgetNut(rad=3,depth=depth,m=m)
    elif(item == "nutM4"):
        returnValue = OSPCgetNut(rad=4,depth=depth,m=m)
    elif(item == "nutM5"):
        returnValue = OSPCgetNut(rad=5,depth=depth,m=m)
    elif(item == "nutM6"):
        returnValue = OSPCgetNut(rad=6,depth=depth,m=m)
    elif(item == "nut"):
        returnValue = OSPCgetNut(rad=rad,depth=depth,m=m)
    return returnValue

                

def OSPCgetHole(rad,m=""):
    return translate([0,0,-250])(cylinder(r=holeM[rad],h=500).set_modifier(m))

def OSPCgetNut(rad,depth,m=""):
    depth = nutM[rad][NUTDEPTH] if depth==100 else depth
    returnValue = OPSChexagon(nutM[rad][NUTWIDTH],depth=depth,m=m)
    return returnValue

def OSPCgetCountersunk(rad,m=""):
    depth=countersunkM[rad][DEPTH]
    returnValue = translate([0,0,-depth])(cylinder(h=depth,r2=countersunkM[rad][WIDTH],r1=holeM[rad])).set_modifier(m)
    return returnValue

def OPSChexagon(width,depth,m=""):
    angles = []
    for a in range(0,6):
        angles.append((a*360/6)+30)
    points = []
    for angle in angles:
        x = math.cos((math.pi/180)*angle)*(width/2)
        y = math.sin((math.pi/180)*angle)*(width/2)
        points.append([x,y])

        rv = polygon(points)
        rv = linear_extrude(height=depth)(rv)
        rv = translate([0,0,-depth])(rv)
        rv = rv.set_modifier(m)

    return rv

def OPSChexagonOld(width,depth,m=""):
    cutter = item()
    wid=width*2
    cutter.addPos(insert("cube",pos=[wid/2+width/2,0,0],size=[wid,wid,depth]))
    cutter.addPos(insert("cube",pos=[-wid/2-width/2,0,0],size=[wid,wid,depth]))

    cut = cutter.getPart()
    #print(depth)
    returnValue = difference()(
        translate([0,0,-depth/2])(cube([wid,wid,depth],center=True)),
        cut,
        rotate([0,0,60])(cut),
        rotate([0,0,-60])(cut)
    ).set_modifier(m)

    return returnValue

class item:

    def __init__(self):
        self.posItems=list()
        self.negItems=list()

    def isEmpty(self):        
        testString = scad_render(self.getPart())
        #print("test String length: " + str(len(testString)))
        returnValue = False
        if len(testString) == 270:            
            returnValue = True
        return returnValue

    def addPos(self,part):
        self.posItems.append(part)
    def addNeg(self,part):
        self.negItems.append(part)

    def getPart(self):
        returnValue = difference()(
            union()(self.posItems),
            union()(self.negItems)
        )
        return returnValue

    def getLaser(self,start=0,layers=1,thickness=-3,tileDif=200):
        rv= []

        for x in range(layers):
            rv.append(translate([0,x*tileDif,0])(
                    projection()(
                        intersection()(
                            insert("plane",z=start+x*thickness),
                            self.getPart()
                        )
                    )
            )
            )
        return union()(rv)

    def getSplit(self,start=0,depth=6,tileDif=200):
        rv= []

        rv.append(translate([0,0,0])(
            intersection()(
                insert("cube",size=[100,100,depth],z=start),
                self.getPart()
            )
        )
        )

        rv.append(translate([0,0,depth])(rotate([180,0,0])(translate([0,tileDif,depth])(
            intersection()(
                insert("cube",size=[100,100,depth],z=start-depth),
                self.getPart()
            )
        )
        )
        )
        )        
        return union()(rv)


 
 
************************************************/
